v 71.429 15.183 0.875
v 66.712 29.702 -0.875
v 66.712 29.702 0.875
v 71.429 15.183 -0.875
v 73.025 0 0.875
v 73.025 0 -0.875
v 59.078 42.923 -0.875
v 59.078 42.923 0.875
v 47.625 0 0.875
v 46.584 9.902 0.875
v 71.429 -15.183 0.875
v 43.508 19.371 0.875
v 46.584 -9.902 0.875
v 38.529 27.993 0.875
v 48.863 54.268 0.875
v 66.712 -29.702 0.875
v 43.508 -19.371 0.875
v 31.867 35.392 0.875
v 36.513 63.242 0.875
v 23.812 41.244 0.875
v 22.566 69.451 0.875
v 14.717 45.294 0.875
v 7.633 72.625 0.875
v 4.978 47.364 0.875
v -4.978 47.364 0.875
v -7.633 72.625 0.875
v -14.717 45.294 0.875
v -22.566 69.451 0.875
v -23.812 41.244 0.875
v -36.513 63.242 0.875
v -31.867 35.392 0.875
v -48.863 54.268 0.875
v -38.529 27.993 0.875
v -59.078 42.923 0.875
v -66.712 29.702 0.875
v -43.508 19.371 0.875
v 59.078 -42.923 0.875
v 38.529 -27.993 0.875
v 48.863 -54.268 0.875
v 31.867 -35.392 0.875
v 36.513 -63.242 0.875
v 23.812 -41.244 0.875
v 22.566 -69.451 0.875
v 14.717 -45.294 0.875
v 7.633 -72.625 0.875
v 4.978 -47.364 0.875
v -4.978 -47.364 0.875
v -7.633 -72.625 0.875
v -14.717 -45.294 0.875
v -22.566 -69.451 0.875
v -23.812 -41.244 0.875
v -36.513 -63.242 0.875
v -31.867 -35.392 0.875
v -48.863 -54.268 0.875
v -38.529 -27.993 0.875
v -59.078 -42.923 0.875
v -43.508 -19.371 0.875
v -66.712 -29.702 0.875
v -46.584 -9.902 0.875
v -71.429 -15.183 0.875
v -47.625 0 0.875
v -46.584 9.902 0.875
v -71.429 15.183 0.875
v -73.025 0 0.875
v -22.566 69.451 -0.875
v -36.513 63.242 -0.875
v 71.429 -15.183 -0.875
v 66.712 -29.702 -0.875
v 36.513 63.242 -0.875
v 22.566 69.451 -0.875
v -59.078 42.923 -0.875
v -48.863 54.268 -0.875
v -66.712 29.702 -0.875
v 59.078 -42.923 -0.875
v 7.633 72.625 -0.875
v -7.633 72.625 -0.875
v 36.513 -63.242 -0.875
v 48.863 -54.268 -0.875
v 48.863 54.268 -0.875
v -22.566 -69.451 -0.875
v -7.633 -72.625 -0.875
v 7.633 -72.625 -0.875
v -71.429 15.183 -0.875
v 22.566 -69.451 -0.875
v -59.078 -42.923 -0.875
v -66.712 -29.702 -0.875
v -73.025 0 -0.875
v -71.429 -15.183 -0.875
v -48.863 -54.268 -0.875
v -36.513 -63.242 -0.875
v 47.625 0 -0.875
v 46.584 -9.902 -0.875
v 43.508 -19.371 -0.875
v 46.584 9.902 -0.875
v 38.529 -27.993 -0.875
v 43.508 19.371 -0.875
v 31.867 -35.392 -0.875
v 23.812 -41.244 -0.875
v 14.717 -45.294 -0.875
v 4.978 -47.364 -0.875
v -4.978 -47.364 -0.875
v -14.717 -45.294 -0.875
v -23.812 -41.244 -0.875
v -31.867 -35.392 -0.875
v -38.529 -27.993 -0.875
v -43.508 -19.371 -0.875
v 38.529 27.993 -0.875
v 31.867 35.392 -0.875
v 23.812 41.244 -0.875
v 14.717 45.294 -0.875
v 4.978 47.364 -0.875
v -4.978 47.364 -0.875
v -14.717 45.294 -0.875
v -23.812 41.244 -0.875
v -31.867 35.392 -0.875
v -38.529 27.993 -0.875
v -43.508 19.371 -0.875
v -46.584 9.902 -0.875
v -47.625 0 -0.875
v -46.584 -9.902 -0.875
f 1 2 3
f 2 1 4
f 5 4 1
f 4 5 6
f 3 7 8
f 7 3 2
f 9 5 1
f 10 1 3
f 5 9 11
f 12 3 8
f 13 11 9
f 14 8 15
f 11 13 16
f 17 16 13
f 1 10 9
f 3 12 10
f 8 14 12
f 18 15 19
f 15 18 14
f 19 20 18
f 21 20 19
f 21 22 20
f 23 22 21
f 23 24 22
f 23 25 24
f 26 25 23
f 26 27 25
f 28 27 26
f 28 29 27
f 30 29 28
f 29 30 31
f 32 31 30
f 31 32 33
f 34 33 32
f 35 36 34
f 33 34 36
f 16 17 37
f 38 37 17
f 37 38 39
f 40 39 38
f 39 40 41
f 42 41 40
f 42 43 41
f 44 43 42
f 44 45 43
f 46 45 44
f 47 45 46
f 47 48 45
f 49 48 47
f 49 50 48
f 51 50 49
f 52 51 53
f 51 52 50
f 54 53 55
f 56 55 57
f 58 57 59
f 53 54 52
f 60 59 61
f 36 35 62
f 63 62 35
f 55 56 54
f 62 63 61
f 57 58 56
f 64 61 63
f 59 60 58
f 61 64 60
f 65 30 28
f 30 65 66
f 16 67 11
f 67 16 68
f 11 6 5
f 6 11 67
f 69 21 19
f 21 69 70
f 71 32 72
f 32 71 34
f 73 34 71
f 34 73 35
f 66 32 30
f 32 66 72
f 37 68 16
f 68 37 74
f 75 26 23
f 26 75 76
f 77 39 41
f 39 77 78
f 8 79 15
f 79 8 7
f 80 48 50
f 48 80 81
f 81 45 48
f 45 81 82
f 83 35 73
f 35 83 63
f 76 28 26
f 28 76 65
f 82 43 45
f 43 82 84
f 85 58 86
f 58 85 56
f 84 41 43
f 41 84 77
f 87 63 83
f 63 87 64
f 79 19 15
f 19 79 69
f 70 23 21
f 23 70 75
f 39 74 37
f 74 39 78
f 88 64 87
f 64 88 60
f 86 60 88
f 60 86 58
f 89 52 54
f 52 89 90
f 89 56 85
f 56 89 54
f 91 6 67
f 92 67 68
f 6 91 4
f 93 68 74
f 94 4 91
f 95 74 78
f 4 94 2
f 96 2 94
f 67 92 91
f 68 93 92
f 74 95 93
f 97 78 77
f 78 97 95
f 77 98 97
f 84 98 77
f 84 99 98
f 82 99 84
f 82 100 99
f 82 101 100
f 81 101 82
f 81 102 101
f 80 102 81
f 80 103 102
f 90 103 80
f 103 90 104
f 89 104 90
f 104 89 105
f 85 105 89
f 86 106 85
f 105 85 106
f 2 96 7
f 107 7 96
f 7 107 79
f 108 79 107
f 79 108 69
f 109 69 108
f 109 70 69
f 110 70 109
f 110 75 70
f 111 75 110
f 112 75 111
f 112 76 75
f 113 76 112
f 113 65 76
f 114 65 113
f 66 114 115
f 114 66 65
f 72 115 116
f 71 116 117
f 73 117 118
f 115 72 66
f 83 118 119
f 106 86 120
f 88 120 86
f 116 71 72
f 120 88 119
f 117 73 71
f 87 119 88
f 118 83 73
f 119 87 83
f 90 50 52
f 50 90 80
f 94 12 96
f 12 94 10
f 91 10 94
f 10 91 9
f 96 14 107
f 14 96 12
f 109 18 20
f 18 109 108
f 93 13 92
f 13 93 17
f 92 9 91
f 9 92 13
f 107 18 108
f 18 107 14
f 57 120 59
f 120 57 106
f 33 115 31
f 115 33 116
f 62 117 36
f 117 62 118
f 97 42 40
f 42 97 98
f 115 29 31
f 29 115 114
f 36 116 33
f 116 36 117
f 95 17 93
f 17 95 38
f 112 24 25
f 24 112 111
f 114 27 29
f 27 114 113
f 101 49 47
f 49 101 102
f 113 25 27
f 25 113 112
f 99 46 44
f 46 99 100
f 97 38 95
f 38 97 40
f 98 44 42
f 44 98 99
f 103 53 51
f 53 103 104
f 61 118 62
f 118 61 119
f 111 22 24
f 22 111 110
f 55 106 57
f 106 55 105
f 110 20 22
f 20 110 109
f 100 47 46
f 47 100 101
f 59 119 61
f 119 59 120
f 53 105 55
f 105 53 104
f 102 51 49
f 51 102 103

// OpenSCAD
function mm(inch) = inch * 25.4;

plateThickness = 1.75;
plateDiameter = mm(5.75);

holeDiameter = mm(3.75);

difference() {

    cylinder(h = plateThickness, d = plateDiameter, center = true);
    cylinder(h = plateThickness * 2, d = holeDiameter, center = true);

}
